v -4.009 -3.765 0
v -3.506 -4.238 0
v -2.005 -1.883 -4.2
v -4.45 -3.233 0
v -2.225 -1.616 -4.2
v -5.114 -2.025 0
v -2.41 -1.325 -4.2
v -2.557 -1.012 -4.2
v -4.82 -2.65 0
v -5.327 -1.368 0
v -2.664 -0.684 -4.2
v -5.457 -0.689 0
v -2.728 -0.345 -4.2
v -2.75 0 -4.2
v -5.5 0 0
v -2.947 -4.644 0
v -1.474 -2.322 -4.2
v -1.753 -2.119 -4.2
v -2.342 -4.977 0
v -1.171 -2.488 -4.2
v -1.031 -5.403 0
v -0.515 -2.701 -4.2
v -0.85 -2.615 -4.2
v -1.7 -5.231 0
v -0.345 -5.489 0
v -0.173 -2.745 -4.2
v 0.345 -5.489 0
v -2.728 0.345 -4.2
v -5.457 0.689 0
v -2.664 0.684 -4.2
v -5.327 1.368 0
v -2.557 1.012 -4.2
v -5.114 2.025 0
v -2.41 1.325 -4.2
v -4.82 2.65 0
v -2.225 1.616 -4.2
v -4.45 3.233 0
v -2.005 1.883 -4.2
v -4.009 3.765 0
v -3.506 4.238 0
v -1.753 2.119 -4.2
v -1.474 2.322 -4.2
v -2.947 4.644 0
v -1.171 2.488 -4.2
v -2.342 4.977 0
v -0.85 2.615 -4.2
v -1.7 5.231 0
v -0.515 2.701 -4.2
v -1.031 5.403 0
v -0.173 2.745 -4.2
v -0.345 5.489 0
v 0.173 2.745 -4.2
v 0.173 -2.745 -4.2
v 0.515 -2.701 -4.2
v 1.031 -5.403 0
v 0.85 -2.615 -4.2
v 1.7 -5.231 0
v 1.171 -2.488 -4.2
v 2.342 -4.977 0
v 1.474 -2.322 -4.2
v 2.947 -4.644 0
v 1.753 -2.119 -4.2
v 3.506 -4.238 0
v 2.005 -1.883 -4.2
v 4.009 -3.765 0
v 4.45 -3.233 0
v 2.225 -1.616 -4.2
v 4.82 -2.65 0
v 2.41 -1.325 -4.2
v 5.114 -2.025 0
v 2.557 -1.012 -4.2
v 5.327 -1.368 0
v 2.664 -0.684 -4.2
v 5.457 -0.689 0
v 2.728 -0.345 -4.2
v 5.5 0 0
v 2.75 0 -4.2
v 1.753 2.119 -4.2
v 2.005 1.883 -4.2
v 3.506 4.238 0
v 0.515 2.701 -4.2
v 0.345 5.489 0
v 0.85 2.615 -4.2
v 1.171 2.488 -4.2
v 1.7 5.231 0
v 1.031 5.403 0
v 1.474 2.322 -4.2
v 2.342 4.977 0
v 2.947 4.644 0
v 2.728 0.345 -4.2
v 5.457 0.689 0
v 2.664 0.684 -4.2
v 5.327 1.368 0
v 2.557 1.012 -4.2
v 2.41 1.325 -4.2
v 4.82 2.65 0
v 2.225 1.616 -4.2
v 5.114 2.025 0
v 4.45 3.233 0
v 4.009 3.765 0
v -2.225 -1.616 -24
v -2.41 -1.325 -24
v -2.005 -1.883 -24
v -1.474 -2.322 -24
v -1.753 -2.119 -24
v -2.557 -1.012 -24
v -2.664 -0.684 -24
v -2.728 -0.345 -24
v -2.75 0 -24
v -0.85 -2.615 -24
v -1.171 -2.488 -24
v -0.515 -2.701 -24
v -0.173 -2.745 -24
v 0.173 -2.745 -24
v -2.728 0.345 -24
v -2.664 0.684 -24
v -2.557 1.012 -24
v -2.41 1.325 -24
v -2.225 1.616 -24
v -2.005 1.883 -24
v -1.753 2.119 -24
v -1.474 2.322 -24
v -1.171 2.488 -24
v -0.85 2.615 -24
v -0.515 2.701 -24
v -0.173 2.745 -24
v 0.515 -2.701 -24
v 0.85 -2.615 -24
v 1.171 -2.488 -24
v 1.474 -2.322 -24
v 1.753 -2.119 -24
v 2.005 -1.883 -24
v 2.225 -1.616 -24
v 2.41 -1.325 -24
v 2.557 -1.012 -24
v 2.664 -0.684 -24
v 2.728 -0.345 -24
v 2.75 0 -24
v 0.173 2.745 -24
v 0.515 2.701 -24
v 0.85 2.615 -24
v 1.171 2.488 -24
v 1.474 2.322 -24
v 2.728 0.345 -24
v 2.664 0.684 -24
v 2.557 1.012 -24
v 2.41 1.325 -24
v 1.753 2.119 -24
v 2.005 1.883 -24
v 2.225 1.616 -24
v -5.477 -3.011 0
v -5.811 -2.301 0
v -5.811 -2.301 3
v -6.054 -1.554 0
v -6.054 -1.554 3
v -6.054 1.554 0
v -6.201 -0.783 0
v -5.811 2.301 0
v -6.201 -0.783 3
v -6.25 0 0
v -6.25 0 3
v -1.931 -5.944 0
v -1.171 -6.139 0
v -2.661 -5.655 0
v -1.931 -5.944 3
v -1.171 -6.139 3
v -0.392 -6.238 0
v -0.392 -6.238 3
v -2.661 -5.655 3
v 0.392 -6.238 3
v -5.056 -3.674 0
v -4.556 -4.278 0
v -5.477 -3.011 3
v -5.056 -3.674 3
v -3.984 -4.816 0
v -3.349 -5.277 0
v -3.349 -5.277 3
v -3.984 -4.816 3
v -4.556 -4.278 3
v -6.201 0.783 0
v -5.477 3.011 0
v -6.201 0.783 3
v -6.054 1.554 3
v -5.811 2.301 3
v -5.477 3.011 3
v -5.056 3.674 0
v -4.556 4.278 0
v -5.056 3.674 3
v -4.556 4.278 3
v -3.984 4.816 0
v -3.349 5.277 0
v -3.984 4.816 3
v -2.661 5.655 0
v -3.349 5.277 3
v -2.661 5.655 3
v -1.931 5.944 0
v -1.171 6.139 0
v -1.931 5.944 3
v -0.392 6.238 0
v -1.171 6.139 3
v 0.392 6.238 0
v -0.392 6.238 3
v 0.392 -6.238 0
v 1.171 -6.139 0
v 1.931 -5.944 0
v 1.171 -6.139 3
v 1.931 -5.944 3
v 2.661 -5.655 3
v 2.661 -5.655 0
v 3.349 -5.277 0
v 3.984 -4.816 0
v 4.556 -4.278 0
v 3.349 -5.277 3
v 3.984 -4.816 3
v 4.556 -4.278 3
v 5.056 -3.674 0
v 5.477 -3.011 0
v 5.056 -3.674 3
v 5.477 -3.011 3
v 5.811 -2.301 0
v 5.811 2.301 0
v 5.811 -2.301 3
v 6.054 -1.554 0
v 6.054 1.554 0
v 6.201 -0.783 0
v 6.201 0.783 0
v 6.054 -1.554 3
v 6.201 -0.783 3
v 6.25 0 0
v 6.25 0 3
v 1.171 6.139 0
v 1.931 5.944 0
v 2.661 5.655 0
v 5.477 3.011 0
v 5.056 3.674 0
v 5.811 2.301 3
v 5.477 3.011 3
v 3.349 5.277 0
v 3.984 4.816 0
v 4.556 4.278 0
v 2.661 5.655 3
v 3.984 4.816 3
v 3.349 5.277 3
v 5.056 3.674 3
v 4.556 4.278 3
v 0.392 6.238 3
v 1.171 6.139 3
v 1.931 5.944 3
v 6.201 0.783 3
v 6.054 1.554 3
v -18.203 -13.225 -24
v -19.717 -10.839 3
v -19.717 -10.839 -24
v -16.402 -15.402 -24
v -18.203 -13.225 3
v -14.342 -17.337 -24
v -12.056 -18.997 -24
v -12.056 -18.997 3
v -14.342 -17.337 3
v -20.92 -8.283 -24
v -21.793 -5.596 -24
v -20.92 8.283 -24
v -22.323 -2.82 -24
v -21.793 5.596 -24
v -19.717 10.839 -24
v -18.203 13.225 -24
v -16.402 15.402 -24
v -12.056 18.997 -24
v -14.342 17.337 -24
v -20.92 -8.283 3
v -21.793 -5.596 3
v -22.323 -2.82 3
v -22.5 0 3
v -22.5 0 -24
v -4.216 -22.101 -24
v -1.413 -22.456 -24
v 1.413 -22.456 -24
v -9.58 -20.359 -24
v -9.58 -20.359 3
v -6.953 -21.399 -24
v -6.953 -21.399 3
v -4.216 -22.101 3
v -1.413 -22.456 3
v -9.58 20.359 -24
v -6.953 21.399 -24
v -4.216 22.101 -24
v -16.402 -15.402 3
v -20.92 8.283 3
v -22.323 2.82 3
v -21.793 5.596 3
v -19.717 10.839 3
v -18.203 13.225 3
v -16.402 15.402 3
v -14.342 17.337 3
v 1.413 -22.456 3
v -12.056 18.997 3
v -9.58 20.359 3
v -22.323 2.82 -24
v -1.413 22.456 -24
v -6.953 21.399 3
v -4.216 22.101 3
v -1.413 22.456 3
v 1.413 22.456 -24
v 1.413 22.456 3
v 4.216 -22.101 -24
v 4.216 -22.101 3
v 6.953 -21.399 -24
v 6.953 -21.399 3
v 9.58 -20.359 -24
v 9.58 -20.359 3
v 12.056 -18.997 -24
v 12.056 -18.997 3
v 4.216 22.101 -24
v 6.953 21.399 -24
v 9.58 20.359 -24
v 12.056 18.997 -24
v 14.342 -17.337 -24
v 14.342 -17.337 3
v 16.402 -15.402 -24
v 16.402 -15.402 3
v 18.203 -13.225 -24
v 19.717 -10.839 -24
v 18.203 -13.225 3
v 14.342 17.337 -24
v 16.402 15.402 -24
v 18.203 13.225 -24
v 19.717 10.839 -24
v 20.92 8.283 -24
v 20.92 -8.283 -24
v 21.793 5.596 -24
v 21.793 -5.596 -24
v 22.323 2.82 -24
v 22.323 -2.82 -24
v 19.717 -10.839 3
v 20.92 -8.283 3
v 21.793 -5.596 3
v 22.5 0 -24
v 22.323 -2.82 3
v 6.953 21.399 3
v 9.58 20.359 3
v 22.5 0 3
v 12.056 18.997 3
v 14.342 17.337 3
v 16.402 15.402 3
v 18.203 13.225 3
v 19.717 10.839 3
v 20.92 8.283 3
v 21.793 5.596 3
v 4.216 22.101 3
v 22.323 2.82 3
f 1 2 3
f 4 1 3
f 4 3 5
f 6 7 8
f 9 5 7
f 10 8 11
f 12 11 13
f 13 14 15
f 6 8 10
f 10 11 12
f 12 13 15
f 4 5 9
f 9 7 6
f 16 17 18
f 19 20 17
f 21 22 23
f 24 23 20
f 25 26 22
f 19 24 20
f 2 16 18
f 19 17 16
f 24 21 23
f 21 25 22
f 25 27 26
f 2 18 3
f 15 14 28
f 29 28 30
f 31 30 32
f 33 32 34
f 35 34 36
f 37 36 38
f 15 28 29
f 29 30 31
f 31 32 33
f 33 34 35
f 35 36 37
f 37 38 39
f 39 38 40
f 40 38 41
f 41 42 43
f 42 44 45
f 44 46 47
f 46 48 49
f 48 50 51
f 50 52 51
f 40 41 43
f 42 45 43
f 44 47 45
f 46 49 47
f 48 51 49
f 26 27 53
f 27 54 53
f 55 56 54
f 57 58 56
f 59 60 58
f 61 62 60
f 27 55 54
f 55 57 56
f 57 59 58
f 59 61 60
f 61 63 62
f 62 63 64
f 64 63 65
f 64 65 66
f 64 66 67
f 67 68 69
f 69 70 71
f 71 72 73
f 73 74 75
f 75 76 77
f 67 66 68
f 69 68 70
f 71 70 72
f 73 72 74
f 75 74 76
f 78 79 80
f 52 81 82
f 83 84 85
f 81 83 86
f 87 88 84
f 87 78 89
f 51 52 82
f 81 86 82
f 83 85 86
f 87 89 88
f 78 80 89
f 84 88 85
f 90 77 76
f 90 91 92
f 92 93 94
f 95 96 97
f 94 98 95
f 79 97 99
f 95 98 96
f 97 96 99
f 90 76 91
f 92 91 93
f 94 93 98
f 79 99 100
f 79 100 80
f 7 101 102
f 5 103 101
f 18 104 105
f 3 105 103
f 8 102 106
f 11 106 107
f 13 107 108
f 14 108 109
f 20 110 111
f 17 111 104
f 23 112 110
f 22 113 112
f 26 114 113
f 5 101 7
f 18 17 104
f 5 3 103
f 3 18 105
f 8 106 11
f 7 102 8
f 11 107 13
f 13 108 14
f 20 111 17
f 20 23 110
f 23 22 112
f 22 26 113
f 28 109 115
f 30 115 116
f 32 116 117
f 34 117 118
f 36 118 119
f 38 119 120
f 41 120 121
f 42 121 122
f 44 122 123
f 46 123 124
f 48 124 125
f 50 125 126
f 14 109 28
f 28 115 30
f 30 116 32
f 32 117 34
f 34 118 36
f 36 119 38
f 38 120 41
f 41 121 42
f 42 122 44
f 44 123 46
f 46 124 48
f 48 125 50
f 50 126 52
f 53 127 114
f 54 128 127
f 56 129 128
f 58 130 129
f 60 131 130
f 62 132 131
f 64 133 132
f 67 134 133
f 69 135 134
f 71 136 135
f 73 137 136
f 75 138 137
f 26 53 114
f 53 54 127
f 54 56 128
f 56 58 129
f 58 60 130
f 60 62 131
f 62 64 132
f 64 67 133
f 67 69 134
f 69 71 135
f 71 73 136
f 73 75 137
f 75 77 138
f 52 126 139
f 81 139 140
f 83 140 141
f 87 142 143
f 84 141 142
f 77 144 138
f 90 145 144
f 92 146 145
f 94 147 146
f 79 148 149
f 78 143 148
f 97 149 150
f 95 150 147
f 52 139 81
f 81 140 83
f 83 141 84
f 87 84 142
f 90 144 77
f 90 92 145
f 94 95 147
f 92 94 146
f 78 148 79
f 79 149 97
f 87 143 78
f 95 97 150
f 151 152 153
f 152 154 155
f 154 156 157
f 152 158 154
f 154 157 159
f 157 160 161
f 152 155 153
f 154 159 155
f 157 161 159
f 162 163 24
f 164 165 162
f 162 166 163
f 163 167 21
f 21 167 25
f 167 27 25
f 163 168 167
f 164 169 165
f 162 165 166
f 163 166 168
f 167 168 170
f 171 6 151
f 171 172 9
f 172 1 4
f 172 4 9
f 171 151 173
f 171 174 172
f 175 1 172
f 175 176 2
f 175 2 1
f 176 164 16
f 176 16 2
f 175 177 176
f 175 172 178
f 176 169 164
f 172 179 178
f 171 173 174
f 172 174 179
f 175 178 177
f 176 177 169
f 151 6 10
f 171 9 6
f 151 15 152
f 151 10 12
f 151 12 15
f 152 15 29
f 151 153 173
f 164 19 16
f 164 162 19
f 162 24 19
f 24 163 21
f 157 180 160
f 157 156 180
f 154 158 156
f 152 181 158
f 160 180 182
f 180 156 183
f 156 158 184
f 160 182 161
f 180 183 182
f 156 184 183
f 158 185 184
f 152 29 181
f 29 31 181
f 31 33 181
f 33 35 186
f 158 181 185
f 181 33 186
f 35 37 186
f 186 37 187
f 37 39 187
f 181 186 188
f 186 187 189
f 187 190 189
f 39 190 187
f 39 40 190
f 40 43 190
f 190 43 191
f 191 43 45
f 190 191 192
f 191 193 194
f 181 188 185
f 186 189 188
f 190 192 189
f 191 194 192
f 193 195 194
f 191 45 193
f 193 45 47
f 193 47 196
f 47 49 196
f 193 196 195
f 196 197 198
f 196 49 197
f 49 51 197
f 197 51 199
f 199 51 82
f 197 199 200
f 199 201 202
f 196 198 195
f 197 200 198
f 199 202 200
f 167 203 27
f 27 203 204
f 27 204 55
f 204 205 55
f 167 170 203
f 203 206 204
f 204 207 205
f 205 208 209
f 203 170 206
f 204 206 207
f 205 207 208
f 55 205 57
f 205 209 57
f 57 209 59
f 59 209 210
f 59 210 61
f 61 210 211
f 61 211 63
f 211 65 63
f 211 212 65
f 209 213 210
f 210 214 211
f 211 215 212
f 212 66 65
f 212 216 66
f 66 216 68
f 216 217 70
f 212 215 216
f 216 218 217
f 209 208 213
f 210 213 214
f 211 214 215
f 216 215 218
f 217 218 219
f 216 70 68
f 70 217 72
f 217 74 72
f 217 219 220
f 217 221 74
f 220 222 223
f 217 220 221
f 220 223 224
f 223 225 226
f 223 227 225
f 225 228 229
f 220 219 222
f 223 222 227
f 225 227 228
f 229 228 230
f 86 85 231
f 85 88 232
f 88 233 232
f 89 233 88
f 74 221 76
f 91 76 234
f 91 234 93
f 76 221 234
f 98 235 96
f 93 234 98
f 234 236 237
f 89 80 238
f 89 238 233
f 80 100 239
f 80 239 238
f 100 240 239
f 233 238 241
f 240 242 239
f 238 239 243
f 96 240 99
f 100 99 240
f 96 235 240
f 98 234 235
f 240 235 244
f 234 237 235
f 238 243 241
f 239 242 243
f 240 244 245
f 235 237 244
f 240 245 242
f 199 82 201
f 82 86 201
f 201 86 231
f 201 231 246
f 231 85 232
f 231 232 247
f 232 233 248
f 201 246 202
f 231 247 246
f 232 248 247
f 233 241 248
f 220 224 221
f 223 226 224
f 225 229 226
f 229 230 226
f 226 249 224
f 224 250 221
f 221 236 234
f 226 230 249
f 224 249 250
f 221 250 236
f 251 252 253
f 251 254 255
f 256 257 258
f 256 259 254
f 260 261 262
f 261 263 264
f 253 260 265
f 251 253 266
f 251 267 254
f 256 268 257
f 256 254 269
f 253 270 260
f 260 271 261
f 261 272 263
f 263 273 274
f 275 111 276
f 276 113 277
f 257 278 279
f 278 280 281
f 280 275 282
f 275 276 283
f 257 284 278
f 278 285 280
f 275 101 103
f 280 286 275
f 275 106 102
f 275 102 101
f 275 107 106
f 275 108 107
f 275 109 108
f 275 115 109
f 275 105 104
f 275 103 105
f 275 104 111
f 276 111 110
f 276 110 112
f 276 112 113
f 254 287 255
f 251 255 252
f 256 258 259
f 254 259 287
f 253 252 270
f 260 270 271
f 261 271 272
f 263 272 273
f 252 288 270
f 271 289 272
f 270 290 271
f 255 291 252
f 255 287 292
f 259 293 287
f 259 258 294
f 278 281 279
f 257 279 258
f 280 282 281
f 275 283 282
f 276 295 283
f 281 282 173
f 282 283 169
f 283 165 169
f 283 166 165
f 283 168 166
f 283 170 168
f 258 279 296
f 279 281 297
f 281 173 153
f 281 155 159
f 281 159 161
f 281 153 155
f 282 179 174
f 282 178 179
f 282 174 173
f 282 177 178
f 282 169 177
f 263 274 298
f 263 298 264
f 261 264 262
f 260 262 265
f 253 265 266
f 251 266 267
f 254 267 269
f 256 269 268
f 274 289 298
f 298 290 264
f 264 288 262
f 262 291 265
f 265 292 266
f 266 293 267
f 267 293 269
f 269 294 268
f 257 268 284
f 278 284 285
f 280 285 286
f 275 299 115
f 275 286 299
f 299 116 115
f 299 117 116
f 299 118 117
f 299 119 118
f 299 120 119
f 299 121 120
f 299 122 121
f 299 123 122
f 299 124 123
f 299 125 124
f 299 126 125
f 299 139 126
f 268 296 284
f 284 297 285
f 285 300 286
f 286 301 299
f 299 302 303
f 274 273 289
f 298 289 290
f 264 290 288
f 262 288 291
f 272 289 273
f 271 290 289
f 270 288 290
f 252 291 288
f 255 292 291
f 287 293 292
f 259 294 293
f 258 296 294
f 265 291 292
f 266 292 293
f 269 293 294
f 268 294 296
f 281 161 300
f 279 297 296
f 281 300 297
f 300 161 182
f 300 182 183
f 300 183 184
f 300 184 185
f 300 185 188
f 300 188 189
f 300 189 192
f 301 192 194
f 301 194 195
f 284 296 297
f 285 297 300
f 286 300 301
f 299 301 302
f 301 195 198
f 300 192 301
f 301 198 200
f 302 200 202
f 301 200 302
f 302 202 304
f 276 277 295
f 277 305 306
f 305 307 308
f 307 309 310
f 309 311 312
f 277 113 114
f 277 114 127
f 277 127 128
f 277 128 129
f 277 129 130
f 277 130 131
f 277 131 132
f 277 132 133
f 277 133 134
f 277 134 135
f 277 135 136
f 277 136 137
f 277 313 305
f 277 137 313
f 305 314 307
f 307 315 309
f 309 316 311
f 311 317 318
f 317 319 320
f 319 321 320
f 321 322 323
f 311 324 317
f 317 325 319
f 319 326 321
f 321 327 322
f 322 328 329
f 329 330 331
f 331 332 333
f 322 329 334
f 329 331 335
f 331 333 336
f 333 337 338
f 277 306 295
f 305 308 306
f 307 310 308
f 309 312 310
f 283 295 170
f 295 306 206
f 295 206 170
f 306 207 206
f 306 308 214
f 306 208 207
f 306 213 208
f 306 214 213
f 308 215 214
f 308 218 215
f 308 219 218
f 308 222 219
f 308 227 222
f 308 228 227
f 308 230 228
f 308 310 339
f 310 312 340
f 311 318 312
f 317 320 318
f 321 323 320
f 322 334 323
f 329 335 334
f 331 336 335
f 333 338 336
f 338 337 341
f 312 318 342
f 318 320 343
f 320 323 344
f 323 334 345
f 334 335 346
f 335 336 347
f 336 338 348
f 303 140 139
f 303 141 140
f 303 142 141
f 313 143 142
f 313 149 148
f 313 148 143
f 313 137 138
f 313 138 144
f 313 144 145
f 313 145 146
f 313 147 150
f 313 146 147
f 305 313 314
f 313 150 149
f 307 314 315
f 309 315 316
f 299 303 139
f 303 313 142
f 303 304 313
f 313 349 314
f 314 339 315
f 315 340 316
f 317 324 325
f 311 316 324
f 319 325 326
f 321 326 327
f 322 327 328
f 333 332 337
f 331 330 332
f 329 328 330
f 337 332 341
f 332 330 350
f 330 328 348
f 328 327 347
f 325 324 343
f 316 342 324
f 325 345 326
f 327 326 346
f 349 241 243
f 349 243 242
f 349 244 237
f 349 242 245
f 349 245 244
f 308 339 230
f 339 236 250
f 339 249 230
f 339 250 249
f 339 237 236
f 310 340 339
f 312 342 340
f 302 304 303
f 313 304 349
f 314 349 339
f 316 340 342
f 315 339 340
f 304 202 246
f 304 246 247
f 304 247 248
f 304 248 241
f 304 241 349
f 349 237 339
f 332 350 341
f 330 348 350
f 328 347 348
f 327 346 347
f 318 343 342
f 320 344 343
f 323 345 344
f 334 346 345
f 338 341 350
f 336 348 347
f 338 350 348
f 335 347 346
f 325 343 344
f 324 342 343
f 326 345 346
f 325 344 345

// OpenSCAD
$fn = 50;


difference() {
	union() {
		translate(v = [0, 0, -24.0000000000]) {
			cylinder(h = 27, r = 22.5000000000);
		}
	}
	union() {
		translate(v = [0, 0, 0]) {
			rotate(a = [0, 0, 0]) {
				difference() {
					union() {
						translate(v = [0, 0, -27.0000000000]) {
							cylinder(h = 27, r = 2.2500000000);
						}
						translate(v = [0, 0, -4.2000000000]) {
							cylinder(h = 4.2000000000, r1 = 2.7500000000, r2 = 5.5000000000);
						}
						translate(v = [0, 0, -27.0000000000]) {
							cylinder(h = 27, r = 2.7500000000);
						}
						translate(v = [0, 0, -27.0000000000]) {
							cylinder(h = 27, r = 2.2500000000);
						}
					}
					union();
				}
			}
		}
		#cylinder(h = 3, r = 6.2500000000);
	}
}
